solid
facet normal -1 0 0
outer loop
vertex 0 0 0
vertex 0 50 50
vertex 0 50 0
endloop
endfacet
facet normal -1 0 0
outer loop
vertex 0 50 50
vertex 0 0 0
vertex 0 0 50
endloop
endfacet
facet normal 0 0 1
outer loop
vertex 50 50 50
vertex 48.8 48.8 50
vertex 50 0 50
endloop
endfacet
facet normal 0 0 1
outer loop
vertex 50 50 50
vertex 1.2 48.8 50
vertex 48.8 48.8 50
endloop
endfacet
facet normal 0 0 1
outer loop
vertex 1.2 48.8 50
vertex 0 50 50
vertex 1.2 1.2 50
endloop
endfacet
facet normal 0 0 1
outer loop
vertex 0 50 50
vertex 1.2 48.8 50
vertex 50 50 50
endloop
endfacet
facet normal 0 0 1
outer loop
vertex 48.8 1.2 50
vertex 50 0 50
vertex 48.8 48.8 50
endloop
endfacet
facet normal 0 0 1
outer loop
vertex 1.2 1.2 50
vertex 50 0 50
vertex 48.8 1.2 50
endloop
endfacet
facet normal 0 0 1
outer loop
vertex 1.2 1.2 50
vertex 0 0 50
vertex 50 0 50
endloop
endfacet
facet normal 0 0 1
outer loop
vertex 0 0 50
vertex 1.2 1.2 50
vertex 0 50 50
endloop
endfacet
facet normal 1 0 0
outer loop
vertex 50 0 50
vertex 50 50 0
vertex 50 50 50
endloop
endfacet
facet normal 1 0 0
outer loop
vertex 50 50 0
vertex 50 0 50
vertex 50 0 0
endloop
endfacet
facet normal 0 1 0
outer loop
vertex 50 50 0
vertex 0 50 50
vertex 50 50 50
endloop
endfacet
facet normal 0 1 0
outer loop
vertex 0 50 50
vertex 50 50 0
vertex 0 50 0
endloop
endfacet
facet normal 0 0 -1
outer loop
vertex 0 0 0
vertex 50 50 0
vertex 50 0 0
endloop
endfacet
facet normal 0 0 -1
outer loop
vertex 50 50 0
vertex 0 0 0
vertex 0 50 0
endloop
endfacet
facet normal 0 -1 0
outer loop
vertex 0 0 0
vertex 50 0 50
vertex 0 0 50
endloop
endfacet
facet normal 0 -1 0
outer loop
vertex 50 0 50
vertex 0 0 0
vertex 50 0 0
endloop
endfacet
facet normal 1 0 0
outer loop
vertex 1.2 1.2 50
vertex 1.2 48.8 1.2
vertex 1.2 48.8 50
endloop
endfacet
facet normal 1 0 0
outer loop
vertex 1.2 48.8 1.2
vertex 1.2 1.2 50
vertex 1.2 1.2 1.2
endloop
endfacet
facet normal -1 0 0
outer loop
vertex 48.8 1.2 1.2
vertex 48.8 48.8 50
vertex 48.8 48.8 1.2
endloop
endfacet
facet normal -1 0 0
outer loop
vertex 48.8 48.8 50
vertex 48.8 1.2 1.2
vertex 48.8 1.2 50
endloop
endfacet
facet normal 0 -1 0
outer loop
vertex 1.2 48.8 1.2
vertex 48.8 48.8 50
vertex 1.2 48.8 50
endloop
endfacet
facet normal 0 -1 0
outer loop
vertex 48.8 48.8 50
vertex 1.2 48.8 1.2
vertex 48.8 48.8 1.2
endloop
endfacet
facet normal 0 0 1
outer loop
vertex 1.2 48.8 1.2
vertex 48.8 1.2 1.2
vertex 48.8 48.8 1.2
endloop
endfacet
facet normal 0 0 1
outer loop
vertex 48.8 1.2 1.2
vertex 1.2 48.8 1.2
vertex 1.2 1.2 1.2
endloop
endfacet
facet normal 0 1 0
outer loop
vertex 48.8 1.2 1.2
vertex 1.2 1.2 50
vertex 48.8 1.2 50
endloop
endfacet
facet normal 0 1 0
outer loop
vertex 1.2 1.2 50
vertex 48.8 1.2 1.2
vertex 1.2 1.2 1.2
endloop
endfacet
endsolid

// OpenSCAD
$fn=50;

lang=50;
breit=50;
hoch=50;
wand=1.2;

difference(){
    cube([lang,breit,hoch]);
    translate([wand,wand,wand]) cube([lang-wand-wand,breit-wand-wand,hoch]);
}
